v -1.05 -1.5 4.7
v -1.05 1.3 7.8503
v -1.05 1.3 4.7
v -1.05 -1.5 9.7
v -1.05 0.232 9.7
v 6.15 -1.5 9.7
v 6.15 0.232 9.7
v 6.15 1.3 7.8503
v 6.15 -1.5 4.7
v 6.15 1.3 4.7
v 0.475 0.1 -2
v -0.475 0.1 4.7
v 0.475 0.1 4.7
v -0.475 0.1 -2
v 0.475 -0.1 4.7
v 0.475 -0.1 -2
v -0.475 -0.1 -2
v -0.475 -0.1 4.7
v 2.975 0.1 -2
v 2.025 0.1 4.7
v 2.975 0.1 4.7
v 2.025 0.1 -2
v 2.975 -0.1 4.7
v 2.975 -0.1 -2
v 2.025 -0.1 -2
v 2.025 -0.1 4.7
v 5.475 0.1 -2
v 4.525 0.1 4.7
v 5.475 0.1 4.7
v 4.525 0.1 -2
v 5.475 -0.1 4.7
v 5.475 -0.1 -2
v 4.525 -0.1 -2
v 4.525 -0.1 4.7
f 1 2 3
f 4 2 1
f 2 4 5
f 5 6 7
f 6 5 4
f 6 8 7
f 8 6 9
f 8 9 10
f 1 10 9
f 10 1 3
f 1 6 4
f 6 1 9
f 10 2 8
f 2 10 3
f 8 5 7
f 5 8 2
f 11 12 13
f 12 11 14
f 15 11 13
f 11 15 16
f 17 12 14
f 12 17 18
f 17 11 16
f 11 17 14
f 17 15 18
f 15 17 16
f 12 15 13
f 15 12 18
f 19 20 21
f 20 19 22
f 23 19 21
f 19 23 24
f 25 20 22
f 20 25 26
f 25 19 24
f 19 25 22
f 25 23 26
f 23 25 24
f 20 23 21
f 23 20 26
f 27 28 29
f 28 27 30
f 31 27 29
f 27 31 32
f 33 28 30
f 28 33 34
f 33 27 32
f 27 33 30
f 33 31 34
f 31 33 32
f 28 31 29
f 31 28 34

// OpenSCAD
/**
 * Корпус
 */
module body() {
    difference() {
        cube([7.2,2.8,5]);
        rotate([30,0,0]) translate([0,4,0]) cube([7.2,2.8,5]);
    }
}

/**
 * Вывод
 */
module lead() {
    cube([0.95,6.7,0.2]);
}

translate([-0.95 - 0.1, -1.5, 4.7]) body();
rotate([90,0,180]) translate([-0.95/2, -2, -0.1]) lead();
rotate([90,0,180]) translate([-2.5 - 0.95/2, -2, -0.1]) lead();
rotate([90,0,180]) translate([-5 - 0.95/2, -2, -0.1]) lead();
